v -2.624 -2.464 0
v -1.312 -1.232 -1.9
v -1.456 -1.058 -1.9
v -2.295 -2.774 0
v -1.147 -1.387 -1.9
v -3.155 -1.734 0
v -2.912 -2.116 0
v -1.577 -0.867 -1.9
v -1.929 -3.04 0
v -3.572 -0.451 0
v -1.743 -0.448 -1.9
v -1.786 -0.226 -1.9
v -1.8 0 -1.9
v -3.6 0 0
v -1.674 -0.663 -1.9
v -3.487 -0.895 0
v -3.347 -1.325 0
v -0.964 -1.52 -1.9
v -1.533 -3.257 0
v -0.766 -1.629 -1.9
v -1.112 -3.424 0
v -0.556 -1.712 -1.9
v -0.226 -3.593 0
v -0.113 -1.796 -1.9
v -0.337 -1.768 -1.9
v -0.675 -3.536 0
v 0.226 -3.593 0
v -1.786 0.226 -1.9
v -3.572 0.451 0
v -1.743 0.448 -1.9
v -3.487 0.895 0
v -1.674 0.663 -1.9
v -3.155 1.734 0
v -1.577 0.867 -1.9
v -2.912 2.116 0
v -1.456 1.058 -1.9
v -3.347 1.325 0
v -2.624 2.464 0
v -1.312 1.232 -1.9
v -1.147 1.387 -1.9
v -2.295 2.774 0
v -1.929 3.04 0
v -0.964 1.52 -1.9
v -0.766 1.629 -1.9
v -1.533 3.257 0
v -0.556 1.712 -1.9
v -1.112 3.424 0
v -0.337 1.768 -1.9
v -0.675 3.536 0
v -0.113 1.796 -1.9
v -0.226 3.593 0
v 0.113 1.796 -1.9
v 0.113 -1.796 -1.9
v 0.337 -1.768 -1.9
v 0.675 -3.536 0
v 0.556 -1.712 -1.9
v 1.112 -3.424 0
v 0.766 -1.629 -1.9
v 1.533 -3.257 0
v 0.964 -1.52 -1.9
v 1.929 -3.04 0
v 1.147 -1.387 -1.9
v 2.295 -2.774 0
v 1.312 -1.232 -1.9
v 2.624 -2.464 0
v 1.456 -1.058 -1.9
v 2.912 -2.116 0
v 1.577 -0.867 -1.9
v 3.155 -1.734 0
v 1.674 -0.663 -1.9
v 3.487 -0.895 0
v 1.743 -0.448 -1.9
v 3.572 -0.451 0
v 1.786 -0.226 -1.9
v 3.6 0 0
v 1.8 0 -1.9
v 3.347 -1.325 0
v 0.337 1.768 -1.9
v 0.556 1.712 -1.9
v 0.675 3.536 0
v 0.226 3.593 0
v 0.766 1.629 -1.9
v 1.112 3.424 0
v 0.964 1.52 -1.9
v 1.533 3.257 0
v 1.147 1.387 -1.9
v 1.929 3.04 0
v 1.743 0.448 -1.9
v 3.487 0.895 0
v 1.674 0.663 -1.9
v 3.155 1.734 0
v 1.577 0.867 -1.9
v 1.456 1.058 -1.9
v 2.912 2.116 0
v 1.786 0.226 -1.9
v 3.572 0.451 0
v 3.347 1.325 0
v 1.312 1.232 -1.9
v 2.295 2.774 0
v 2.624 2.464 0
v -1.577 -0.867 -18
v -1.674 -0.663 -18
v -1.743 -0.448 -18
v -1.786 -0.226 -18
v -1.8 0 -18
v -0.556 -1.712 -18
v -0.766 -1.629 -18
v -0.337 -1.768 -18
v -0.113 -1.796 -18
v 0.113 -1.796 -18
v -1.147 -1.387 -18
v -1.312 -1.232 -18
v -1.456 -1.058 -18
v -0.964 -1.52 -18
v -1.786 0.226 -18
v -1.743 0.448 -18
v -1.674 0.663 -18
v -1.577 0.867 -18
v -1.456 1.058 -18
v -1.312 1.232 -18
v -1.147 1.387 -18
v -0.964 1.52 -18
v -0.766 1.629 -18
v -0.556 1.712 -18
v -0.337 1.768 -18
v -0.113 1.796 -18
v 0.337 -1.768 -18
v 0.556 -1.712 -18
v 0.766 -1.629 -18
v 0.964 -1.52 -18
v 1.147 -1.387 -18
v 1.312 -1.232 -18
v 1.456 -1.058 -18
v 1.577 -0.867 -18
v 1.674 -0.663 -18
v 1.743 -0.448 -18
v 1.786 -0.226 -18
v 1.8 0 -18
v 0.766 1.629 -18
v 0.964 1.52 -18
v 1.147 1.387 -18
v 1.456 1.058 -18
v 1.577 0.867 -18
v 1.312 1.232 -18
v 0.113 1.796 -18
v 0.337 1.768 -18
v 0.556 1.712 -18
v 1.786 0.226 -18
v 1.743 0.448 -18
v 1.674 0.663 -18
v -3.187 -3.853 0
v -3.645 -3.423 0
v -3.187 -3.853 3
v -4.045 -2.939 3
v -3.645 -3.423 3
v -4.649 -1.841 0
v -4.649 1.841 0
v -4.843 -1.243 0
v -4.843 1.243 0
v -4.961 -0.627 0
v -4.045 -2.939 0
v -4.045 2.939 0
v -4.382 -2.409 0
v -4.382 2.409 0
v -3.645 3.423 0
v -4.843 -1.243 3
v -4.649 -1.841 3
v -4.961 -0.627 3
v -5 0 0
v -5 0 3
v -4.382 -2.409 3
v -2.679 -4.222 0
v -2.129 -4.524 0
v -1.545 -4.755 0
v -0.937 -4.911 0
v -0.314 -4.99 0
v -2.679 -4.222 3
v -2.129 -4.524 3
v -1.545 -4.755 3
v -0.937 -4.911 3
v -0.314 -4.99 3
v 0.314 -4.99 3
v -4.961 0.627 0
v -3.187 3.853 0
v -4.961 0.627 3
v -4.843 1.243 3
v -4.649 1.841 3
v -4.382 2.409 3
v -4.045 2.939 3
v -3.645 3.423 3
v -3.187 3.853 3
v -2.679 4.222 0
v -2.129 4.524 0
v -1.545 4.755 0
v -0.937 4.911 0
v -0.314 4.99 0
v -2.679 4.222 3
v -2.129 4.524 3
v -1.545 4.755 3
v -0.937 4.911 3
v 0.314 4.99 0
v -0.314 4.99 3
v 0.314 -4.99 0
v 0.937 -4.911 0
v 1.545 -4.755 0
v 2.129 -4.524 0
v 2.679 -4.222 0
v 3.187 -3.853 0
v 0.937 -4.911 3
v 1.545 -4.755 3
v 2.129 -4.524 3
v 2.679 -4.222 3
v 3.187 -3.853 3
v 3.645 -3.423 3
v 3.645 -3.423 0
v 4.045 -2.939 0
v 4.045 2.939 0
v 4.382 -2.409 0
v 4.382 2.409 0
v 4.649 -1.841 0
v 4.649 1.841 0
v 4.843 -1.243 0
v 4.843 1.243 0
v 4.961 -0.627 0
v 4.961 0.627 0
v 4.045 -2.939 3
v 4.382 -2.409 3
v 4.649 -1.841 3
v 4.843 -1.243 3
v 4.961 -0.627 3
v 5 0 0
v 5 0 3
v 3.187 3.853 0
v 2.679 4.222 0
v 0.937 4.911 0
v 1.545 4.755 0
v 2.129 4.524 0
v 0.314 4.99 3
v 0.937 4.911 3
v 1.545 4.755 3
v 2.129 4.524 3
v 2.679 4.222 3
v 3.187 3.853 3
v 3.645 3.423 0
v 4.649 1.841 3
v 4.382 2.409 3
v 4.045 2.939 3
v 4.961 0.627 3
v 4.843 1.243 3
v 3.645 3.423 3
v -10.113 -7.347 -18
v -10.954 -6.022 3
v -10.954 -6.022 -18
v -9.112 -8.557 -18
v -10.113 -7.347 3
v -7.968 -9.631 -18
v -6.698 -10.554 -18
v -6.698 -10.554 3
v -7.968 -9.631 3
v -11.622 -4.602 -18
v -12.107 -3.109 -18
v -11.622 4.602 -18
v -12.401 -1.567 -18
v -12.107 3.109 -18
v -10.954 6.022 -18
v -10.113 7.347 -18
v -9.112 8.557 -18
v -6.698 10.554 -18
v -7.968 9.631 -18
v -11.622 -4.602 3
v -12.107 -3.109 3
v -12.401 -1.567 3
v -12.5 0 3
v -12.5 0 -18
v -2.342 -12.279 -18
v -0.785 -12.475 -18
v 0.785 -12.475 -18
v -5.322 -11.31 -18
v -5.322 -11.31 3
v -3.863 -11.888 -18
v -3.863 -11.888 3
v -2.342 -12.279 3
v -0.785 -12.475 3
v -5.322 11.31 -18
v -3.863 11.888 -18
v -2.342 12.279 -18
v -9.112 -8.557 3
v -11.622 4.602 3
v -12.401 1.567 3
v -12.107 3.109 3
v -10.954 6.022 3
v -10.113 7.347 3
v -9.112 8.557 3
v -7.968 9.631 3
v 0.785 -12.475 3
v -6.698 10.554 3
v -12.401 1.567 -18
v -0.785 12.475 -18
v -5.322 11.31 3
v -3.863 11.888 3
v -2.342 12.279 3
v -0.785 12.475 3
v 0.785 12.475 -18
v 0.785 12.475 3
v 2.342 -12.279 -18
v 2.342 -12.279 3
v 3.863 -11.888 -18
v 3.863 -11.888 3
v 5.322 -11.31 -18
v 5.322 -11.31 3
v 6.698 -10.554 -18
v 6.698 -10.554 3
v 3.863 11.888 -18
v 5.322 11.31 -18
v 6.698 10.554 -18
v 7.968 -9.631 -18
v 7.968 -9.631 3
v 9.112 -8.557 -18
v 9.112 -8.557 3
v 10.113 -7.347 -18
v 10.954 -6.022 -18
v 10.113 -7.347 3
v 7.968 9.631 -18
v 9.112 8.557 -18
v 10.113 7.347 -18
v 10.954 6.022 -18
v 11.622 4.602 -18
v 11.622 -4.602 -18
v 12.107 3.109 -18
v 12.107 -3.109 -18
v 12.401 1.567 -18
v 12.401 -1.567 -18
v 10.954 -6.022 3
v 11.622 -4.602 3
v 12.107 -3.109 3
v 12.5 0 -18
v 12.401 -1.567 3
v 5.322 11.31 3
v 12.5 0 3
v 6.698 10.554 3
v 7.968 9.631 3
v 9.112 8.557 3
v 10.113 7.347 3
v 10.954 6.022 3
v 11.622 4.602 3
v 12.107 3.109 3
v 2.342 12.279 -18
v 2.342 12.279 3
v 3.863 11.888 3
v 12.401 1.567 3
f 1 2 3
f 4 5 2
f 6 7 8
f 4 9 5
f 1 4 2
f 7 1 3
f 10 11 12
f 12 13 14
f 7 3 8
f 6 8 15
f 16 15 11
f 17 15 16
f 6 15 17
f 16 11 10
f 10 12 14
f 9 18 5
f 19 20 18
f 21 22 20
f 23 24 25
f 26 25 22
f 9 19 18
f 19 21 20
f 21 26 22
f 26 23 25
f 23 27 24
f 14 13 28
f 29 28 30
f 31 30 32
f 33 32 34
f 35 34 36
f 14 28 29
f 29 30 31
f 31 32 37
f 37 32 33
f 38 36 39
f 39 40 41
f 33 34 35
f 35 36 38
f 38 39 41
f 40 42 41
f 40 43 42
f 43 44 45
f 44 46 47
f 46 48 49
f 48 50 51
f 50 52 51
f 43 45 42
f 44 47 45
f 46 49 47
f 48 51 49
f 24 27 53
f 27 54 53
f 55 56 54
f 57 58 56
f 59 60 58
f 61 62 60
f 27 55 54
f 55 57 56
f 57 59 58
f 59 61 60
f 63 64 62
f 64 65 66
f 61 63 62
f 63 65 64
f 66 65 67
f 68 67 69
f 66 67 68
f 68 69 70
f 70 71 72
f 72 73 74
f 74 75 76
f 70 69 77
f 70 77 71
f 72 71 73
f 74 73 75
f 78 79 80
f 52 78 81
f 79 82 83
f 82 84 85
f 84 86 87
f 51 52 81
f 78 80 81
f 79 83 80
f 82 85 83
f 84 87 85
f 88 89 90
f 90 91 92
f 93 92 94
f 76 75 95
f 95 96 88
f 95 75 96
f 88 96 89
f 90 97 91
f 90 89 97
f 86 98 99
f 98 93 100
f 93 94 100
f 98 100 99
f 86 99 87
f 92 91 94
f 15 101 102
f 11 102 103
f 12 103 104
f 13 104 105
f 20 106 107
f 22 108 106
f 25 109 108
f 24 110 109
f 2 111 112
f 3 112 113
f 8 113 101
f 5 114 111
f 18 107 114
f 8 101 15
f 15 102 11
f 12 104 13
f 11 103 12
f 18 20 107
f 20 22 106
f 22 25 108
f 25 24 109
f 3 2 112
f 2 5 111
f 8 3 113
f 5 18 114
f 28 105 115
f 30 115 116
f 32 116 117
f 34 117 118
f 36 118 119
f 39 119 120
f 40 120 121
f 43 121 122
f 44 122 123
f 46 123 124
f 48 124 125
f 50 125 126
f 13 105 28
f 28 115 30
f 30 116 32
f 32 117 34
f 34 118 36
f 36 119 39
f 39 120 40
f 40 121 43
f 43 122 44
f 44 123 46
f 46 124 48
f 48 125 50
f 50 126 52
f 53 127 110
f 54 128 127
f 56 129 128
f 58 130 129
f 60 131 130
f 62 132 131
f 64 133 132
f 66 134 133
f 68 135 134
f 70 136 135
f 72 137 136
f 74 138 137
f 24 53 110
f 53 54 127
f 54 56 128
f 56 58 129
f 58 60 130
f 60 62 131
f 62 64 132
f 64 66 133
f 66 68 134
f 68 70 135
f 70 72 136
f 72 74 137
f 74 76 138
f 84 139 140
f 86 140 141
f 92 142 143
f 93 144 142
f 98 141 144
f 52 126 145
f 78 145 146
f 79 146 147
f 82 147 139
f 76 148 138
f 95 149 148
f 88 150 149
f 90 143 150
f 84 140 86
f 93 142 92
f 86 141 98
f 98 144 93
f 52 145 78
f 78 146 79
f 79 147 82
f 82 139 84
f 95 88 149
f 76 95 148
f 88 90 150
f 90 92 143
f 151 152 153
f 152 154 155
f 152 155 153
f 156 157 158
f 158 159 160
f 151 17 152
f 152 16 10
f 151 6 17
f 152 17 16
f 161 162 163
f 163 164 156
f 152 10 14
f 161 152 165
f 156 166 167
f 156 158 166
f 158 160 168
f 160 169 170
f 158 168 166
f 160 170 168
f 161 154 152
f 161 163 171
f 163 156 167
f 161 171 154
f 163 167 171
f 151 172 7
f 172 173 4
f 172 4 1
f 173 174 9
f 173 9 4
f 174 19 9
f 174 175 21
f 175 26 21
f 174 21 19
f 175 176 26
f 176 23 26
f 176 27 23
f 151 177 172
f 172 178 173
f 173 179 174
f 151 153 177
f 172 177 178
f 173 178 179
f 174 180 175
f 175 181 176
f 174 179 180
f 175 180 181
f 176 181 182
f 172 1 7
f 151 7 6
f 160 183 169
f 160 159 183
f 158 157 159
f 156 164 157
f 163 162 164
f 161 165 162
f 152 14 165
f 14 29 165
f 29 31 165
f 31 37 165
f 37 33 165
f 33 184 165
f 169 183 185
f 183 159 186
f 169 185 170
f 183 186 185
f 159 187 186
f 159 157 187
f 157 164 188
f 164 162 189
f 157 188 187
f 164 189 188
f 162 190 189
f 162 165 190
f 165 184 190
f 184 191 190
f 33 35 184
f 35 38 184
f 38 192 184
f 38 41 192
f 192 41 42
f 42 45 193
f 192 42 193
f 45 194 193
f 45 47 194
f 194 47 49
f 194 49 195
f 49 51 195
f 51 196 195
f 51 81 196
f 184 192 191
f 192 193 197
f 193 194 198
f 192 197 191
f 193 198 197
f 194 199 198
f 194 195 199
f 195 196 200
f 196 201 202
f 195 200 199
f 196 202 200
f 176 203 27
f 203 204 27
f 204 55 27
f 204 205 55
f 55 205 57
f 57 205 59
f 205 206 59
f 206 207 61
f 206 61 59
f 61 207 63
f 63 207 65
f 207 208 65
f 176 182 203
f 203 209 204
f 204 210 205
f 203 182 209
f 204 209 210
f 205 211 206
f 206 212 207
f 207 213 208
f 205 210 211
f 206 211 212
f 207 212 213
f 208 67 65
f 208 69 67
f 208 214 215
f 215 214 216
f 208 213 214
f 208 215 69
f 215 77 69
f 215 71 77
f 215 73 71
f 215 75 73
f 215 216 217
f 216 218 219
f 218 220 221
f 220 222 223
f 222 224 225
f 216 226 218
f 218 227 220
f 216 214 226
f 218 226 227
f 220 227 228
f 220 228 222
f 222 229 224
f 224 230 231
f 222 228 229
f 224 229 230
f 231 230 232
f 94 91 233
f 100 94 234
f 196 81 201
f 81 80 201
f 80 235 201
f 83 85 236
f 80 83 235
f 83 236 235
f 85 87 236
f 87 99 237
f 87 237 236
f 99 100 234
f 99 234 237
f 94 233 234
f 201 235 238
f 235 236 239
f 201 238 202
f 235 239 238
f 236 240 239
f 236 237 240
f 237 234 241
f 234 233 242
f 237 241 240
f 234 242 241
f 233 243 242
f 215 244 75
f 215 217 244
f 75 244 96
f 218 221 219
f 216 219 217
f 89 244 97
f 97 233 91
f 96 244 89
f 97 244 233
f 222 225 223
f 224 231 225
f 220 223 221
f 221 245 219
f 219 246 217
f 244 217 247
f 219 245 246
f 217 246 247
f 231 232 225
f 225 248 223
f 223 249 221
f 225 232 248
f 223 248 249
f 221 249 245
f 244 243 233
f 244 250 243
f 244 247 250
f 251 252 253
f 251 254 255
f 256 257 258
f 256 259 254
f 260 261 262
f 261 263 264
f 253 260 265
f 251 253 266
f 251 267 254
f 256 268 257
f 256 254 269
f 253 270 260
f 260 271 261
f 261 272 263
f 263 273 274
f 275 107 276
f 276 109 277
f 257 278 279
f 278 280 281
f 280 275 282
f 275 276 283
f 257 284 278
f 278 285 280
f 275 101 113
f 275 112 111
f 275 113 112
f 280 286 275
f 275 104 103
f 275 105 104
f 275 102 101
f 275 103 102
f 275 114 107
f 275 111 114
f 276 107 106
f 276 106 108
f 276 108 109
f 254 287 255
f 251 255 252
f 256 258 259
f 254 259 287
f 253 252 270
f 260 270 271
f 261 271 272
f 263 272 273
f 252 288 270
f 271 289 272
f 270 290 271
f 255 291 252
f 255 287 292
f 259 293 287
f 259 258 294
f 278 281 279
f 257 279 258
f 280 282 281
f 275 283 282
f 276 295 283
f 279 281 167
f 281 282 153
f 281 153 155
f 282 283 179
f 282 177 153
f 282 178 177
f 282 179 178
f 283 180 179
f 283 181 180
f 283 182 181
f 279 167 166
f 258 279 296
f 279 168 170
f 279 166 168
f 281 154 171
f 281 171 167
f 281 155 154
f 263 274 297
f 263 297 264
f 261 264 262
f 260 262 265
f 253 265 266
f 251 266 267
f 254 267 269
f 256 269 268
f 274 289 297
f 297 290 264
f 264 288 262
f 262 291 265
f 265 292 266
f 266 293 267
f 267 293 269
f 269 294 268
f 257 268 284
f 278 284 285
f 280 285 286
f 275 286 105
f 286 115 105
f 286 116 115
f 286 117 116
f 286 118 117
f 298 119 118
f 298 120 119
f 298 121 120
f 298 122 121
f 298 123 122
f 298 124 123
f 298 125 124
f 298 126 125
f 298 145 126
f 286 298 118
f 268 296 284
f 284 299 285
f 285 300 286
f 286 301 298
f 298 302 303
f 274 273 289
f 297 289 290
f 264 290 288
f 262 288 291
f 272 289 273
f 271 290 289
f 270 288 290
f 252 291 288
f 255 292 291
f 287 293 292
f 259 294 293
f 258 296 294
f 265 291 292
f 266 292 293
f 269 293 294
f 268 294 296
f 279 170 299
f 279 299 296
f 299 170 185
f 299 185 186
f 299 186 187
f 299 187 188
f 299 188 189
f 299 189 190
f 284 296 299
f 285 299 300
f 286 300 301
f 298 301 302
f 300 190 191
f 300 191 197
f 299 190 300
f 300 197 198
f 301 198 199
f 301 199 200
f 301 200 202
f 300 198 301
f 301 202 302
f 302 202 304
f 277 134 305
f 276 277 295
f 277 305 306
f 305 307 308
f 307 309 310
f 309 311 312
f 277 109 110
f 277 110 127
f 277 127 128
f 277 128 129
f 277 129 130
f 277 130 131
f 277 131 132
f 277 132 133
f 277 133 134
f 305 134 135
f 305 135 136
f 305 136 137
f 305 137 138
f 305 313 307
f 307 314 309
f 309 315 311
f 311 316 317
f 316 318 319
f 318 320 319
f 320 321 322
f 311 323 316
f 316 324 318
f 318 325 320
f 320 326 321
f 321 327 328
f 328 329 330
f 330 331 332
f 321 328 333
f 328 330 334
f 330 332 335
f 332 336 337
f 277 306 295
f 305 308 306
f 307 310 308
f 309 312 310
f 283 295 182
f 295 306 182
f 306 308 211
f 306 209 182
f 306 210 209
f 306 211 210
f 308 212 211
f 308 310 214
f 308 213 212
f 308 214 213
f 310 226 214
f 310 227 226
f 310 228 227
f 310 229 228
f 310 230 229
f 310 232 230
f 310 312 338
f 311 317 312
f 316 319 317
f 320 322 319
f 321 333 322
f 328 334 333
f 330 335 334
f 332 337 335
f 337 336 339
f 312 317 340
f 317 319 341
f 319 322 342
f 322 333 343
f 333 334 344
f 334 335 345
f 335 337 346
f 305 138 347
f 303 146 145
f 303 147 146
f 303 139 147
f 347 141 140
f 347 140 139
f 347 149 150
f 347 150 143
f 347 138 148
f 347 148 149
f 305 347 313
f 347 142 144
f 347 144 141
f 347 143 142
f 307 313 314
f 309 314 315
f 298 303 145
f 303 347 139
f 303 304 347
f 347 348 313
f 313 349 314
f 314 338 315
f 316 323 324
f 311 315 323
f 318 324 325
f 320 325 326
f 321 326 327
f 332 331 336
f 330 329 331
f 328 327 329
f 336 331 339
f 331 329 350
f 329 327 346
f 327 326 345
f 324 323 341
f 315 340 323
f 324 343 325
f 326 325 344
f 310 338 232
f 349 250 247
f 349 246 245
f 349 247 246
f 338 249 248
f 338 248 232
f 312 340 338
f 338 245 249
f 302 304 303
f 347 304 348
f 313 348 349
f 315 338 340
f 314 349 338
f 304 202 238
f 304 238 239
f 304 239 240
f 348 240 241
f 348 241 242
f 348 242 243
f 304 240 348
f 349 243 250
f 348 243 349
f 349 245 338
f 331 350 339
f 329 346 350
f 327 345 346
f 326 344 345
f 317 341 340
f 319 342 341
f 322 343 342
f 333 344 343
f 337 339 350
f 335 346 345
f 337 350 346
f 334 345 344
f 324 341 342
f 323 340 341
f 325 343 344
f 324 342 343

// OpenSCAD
$fn = 50;

difference() {
	union() {
		translate(v = [0, 0, -18.0]) {
			cylinder(h = 21, r = 12.5);
		}
	}
	union() {
		translate(v = [0, 0, 0]) {
			rotate(a = [0, 0, 0]) {
				difference() {
					union() {
						translate(v = [0, 0, -21.0]) {
							cylinder(h = 21, r = 1.5);
						}
						translate(v = [0, 0, -1.9]) {
							cylinder(h = 1.9, r1 = 1.8, r2 = 3.6);
						}
						translate(v = [0, 0, -21.0]) {
							cylinder(h = 21, r = 1.8);
						}
						translate(v = [0, 0, -21.0]) {
							cylinder(h = 21, r = 1.5);
						}
					}
					union();
				}
			}
		}
		#cylinder(h = 3, r = 5.0);
	}
}
